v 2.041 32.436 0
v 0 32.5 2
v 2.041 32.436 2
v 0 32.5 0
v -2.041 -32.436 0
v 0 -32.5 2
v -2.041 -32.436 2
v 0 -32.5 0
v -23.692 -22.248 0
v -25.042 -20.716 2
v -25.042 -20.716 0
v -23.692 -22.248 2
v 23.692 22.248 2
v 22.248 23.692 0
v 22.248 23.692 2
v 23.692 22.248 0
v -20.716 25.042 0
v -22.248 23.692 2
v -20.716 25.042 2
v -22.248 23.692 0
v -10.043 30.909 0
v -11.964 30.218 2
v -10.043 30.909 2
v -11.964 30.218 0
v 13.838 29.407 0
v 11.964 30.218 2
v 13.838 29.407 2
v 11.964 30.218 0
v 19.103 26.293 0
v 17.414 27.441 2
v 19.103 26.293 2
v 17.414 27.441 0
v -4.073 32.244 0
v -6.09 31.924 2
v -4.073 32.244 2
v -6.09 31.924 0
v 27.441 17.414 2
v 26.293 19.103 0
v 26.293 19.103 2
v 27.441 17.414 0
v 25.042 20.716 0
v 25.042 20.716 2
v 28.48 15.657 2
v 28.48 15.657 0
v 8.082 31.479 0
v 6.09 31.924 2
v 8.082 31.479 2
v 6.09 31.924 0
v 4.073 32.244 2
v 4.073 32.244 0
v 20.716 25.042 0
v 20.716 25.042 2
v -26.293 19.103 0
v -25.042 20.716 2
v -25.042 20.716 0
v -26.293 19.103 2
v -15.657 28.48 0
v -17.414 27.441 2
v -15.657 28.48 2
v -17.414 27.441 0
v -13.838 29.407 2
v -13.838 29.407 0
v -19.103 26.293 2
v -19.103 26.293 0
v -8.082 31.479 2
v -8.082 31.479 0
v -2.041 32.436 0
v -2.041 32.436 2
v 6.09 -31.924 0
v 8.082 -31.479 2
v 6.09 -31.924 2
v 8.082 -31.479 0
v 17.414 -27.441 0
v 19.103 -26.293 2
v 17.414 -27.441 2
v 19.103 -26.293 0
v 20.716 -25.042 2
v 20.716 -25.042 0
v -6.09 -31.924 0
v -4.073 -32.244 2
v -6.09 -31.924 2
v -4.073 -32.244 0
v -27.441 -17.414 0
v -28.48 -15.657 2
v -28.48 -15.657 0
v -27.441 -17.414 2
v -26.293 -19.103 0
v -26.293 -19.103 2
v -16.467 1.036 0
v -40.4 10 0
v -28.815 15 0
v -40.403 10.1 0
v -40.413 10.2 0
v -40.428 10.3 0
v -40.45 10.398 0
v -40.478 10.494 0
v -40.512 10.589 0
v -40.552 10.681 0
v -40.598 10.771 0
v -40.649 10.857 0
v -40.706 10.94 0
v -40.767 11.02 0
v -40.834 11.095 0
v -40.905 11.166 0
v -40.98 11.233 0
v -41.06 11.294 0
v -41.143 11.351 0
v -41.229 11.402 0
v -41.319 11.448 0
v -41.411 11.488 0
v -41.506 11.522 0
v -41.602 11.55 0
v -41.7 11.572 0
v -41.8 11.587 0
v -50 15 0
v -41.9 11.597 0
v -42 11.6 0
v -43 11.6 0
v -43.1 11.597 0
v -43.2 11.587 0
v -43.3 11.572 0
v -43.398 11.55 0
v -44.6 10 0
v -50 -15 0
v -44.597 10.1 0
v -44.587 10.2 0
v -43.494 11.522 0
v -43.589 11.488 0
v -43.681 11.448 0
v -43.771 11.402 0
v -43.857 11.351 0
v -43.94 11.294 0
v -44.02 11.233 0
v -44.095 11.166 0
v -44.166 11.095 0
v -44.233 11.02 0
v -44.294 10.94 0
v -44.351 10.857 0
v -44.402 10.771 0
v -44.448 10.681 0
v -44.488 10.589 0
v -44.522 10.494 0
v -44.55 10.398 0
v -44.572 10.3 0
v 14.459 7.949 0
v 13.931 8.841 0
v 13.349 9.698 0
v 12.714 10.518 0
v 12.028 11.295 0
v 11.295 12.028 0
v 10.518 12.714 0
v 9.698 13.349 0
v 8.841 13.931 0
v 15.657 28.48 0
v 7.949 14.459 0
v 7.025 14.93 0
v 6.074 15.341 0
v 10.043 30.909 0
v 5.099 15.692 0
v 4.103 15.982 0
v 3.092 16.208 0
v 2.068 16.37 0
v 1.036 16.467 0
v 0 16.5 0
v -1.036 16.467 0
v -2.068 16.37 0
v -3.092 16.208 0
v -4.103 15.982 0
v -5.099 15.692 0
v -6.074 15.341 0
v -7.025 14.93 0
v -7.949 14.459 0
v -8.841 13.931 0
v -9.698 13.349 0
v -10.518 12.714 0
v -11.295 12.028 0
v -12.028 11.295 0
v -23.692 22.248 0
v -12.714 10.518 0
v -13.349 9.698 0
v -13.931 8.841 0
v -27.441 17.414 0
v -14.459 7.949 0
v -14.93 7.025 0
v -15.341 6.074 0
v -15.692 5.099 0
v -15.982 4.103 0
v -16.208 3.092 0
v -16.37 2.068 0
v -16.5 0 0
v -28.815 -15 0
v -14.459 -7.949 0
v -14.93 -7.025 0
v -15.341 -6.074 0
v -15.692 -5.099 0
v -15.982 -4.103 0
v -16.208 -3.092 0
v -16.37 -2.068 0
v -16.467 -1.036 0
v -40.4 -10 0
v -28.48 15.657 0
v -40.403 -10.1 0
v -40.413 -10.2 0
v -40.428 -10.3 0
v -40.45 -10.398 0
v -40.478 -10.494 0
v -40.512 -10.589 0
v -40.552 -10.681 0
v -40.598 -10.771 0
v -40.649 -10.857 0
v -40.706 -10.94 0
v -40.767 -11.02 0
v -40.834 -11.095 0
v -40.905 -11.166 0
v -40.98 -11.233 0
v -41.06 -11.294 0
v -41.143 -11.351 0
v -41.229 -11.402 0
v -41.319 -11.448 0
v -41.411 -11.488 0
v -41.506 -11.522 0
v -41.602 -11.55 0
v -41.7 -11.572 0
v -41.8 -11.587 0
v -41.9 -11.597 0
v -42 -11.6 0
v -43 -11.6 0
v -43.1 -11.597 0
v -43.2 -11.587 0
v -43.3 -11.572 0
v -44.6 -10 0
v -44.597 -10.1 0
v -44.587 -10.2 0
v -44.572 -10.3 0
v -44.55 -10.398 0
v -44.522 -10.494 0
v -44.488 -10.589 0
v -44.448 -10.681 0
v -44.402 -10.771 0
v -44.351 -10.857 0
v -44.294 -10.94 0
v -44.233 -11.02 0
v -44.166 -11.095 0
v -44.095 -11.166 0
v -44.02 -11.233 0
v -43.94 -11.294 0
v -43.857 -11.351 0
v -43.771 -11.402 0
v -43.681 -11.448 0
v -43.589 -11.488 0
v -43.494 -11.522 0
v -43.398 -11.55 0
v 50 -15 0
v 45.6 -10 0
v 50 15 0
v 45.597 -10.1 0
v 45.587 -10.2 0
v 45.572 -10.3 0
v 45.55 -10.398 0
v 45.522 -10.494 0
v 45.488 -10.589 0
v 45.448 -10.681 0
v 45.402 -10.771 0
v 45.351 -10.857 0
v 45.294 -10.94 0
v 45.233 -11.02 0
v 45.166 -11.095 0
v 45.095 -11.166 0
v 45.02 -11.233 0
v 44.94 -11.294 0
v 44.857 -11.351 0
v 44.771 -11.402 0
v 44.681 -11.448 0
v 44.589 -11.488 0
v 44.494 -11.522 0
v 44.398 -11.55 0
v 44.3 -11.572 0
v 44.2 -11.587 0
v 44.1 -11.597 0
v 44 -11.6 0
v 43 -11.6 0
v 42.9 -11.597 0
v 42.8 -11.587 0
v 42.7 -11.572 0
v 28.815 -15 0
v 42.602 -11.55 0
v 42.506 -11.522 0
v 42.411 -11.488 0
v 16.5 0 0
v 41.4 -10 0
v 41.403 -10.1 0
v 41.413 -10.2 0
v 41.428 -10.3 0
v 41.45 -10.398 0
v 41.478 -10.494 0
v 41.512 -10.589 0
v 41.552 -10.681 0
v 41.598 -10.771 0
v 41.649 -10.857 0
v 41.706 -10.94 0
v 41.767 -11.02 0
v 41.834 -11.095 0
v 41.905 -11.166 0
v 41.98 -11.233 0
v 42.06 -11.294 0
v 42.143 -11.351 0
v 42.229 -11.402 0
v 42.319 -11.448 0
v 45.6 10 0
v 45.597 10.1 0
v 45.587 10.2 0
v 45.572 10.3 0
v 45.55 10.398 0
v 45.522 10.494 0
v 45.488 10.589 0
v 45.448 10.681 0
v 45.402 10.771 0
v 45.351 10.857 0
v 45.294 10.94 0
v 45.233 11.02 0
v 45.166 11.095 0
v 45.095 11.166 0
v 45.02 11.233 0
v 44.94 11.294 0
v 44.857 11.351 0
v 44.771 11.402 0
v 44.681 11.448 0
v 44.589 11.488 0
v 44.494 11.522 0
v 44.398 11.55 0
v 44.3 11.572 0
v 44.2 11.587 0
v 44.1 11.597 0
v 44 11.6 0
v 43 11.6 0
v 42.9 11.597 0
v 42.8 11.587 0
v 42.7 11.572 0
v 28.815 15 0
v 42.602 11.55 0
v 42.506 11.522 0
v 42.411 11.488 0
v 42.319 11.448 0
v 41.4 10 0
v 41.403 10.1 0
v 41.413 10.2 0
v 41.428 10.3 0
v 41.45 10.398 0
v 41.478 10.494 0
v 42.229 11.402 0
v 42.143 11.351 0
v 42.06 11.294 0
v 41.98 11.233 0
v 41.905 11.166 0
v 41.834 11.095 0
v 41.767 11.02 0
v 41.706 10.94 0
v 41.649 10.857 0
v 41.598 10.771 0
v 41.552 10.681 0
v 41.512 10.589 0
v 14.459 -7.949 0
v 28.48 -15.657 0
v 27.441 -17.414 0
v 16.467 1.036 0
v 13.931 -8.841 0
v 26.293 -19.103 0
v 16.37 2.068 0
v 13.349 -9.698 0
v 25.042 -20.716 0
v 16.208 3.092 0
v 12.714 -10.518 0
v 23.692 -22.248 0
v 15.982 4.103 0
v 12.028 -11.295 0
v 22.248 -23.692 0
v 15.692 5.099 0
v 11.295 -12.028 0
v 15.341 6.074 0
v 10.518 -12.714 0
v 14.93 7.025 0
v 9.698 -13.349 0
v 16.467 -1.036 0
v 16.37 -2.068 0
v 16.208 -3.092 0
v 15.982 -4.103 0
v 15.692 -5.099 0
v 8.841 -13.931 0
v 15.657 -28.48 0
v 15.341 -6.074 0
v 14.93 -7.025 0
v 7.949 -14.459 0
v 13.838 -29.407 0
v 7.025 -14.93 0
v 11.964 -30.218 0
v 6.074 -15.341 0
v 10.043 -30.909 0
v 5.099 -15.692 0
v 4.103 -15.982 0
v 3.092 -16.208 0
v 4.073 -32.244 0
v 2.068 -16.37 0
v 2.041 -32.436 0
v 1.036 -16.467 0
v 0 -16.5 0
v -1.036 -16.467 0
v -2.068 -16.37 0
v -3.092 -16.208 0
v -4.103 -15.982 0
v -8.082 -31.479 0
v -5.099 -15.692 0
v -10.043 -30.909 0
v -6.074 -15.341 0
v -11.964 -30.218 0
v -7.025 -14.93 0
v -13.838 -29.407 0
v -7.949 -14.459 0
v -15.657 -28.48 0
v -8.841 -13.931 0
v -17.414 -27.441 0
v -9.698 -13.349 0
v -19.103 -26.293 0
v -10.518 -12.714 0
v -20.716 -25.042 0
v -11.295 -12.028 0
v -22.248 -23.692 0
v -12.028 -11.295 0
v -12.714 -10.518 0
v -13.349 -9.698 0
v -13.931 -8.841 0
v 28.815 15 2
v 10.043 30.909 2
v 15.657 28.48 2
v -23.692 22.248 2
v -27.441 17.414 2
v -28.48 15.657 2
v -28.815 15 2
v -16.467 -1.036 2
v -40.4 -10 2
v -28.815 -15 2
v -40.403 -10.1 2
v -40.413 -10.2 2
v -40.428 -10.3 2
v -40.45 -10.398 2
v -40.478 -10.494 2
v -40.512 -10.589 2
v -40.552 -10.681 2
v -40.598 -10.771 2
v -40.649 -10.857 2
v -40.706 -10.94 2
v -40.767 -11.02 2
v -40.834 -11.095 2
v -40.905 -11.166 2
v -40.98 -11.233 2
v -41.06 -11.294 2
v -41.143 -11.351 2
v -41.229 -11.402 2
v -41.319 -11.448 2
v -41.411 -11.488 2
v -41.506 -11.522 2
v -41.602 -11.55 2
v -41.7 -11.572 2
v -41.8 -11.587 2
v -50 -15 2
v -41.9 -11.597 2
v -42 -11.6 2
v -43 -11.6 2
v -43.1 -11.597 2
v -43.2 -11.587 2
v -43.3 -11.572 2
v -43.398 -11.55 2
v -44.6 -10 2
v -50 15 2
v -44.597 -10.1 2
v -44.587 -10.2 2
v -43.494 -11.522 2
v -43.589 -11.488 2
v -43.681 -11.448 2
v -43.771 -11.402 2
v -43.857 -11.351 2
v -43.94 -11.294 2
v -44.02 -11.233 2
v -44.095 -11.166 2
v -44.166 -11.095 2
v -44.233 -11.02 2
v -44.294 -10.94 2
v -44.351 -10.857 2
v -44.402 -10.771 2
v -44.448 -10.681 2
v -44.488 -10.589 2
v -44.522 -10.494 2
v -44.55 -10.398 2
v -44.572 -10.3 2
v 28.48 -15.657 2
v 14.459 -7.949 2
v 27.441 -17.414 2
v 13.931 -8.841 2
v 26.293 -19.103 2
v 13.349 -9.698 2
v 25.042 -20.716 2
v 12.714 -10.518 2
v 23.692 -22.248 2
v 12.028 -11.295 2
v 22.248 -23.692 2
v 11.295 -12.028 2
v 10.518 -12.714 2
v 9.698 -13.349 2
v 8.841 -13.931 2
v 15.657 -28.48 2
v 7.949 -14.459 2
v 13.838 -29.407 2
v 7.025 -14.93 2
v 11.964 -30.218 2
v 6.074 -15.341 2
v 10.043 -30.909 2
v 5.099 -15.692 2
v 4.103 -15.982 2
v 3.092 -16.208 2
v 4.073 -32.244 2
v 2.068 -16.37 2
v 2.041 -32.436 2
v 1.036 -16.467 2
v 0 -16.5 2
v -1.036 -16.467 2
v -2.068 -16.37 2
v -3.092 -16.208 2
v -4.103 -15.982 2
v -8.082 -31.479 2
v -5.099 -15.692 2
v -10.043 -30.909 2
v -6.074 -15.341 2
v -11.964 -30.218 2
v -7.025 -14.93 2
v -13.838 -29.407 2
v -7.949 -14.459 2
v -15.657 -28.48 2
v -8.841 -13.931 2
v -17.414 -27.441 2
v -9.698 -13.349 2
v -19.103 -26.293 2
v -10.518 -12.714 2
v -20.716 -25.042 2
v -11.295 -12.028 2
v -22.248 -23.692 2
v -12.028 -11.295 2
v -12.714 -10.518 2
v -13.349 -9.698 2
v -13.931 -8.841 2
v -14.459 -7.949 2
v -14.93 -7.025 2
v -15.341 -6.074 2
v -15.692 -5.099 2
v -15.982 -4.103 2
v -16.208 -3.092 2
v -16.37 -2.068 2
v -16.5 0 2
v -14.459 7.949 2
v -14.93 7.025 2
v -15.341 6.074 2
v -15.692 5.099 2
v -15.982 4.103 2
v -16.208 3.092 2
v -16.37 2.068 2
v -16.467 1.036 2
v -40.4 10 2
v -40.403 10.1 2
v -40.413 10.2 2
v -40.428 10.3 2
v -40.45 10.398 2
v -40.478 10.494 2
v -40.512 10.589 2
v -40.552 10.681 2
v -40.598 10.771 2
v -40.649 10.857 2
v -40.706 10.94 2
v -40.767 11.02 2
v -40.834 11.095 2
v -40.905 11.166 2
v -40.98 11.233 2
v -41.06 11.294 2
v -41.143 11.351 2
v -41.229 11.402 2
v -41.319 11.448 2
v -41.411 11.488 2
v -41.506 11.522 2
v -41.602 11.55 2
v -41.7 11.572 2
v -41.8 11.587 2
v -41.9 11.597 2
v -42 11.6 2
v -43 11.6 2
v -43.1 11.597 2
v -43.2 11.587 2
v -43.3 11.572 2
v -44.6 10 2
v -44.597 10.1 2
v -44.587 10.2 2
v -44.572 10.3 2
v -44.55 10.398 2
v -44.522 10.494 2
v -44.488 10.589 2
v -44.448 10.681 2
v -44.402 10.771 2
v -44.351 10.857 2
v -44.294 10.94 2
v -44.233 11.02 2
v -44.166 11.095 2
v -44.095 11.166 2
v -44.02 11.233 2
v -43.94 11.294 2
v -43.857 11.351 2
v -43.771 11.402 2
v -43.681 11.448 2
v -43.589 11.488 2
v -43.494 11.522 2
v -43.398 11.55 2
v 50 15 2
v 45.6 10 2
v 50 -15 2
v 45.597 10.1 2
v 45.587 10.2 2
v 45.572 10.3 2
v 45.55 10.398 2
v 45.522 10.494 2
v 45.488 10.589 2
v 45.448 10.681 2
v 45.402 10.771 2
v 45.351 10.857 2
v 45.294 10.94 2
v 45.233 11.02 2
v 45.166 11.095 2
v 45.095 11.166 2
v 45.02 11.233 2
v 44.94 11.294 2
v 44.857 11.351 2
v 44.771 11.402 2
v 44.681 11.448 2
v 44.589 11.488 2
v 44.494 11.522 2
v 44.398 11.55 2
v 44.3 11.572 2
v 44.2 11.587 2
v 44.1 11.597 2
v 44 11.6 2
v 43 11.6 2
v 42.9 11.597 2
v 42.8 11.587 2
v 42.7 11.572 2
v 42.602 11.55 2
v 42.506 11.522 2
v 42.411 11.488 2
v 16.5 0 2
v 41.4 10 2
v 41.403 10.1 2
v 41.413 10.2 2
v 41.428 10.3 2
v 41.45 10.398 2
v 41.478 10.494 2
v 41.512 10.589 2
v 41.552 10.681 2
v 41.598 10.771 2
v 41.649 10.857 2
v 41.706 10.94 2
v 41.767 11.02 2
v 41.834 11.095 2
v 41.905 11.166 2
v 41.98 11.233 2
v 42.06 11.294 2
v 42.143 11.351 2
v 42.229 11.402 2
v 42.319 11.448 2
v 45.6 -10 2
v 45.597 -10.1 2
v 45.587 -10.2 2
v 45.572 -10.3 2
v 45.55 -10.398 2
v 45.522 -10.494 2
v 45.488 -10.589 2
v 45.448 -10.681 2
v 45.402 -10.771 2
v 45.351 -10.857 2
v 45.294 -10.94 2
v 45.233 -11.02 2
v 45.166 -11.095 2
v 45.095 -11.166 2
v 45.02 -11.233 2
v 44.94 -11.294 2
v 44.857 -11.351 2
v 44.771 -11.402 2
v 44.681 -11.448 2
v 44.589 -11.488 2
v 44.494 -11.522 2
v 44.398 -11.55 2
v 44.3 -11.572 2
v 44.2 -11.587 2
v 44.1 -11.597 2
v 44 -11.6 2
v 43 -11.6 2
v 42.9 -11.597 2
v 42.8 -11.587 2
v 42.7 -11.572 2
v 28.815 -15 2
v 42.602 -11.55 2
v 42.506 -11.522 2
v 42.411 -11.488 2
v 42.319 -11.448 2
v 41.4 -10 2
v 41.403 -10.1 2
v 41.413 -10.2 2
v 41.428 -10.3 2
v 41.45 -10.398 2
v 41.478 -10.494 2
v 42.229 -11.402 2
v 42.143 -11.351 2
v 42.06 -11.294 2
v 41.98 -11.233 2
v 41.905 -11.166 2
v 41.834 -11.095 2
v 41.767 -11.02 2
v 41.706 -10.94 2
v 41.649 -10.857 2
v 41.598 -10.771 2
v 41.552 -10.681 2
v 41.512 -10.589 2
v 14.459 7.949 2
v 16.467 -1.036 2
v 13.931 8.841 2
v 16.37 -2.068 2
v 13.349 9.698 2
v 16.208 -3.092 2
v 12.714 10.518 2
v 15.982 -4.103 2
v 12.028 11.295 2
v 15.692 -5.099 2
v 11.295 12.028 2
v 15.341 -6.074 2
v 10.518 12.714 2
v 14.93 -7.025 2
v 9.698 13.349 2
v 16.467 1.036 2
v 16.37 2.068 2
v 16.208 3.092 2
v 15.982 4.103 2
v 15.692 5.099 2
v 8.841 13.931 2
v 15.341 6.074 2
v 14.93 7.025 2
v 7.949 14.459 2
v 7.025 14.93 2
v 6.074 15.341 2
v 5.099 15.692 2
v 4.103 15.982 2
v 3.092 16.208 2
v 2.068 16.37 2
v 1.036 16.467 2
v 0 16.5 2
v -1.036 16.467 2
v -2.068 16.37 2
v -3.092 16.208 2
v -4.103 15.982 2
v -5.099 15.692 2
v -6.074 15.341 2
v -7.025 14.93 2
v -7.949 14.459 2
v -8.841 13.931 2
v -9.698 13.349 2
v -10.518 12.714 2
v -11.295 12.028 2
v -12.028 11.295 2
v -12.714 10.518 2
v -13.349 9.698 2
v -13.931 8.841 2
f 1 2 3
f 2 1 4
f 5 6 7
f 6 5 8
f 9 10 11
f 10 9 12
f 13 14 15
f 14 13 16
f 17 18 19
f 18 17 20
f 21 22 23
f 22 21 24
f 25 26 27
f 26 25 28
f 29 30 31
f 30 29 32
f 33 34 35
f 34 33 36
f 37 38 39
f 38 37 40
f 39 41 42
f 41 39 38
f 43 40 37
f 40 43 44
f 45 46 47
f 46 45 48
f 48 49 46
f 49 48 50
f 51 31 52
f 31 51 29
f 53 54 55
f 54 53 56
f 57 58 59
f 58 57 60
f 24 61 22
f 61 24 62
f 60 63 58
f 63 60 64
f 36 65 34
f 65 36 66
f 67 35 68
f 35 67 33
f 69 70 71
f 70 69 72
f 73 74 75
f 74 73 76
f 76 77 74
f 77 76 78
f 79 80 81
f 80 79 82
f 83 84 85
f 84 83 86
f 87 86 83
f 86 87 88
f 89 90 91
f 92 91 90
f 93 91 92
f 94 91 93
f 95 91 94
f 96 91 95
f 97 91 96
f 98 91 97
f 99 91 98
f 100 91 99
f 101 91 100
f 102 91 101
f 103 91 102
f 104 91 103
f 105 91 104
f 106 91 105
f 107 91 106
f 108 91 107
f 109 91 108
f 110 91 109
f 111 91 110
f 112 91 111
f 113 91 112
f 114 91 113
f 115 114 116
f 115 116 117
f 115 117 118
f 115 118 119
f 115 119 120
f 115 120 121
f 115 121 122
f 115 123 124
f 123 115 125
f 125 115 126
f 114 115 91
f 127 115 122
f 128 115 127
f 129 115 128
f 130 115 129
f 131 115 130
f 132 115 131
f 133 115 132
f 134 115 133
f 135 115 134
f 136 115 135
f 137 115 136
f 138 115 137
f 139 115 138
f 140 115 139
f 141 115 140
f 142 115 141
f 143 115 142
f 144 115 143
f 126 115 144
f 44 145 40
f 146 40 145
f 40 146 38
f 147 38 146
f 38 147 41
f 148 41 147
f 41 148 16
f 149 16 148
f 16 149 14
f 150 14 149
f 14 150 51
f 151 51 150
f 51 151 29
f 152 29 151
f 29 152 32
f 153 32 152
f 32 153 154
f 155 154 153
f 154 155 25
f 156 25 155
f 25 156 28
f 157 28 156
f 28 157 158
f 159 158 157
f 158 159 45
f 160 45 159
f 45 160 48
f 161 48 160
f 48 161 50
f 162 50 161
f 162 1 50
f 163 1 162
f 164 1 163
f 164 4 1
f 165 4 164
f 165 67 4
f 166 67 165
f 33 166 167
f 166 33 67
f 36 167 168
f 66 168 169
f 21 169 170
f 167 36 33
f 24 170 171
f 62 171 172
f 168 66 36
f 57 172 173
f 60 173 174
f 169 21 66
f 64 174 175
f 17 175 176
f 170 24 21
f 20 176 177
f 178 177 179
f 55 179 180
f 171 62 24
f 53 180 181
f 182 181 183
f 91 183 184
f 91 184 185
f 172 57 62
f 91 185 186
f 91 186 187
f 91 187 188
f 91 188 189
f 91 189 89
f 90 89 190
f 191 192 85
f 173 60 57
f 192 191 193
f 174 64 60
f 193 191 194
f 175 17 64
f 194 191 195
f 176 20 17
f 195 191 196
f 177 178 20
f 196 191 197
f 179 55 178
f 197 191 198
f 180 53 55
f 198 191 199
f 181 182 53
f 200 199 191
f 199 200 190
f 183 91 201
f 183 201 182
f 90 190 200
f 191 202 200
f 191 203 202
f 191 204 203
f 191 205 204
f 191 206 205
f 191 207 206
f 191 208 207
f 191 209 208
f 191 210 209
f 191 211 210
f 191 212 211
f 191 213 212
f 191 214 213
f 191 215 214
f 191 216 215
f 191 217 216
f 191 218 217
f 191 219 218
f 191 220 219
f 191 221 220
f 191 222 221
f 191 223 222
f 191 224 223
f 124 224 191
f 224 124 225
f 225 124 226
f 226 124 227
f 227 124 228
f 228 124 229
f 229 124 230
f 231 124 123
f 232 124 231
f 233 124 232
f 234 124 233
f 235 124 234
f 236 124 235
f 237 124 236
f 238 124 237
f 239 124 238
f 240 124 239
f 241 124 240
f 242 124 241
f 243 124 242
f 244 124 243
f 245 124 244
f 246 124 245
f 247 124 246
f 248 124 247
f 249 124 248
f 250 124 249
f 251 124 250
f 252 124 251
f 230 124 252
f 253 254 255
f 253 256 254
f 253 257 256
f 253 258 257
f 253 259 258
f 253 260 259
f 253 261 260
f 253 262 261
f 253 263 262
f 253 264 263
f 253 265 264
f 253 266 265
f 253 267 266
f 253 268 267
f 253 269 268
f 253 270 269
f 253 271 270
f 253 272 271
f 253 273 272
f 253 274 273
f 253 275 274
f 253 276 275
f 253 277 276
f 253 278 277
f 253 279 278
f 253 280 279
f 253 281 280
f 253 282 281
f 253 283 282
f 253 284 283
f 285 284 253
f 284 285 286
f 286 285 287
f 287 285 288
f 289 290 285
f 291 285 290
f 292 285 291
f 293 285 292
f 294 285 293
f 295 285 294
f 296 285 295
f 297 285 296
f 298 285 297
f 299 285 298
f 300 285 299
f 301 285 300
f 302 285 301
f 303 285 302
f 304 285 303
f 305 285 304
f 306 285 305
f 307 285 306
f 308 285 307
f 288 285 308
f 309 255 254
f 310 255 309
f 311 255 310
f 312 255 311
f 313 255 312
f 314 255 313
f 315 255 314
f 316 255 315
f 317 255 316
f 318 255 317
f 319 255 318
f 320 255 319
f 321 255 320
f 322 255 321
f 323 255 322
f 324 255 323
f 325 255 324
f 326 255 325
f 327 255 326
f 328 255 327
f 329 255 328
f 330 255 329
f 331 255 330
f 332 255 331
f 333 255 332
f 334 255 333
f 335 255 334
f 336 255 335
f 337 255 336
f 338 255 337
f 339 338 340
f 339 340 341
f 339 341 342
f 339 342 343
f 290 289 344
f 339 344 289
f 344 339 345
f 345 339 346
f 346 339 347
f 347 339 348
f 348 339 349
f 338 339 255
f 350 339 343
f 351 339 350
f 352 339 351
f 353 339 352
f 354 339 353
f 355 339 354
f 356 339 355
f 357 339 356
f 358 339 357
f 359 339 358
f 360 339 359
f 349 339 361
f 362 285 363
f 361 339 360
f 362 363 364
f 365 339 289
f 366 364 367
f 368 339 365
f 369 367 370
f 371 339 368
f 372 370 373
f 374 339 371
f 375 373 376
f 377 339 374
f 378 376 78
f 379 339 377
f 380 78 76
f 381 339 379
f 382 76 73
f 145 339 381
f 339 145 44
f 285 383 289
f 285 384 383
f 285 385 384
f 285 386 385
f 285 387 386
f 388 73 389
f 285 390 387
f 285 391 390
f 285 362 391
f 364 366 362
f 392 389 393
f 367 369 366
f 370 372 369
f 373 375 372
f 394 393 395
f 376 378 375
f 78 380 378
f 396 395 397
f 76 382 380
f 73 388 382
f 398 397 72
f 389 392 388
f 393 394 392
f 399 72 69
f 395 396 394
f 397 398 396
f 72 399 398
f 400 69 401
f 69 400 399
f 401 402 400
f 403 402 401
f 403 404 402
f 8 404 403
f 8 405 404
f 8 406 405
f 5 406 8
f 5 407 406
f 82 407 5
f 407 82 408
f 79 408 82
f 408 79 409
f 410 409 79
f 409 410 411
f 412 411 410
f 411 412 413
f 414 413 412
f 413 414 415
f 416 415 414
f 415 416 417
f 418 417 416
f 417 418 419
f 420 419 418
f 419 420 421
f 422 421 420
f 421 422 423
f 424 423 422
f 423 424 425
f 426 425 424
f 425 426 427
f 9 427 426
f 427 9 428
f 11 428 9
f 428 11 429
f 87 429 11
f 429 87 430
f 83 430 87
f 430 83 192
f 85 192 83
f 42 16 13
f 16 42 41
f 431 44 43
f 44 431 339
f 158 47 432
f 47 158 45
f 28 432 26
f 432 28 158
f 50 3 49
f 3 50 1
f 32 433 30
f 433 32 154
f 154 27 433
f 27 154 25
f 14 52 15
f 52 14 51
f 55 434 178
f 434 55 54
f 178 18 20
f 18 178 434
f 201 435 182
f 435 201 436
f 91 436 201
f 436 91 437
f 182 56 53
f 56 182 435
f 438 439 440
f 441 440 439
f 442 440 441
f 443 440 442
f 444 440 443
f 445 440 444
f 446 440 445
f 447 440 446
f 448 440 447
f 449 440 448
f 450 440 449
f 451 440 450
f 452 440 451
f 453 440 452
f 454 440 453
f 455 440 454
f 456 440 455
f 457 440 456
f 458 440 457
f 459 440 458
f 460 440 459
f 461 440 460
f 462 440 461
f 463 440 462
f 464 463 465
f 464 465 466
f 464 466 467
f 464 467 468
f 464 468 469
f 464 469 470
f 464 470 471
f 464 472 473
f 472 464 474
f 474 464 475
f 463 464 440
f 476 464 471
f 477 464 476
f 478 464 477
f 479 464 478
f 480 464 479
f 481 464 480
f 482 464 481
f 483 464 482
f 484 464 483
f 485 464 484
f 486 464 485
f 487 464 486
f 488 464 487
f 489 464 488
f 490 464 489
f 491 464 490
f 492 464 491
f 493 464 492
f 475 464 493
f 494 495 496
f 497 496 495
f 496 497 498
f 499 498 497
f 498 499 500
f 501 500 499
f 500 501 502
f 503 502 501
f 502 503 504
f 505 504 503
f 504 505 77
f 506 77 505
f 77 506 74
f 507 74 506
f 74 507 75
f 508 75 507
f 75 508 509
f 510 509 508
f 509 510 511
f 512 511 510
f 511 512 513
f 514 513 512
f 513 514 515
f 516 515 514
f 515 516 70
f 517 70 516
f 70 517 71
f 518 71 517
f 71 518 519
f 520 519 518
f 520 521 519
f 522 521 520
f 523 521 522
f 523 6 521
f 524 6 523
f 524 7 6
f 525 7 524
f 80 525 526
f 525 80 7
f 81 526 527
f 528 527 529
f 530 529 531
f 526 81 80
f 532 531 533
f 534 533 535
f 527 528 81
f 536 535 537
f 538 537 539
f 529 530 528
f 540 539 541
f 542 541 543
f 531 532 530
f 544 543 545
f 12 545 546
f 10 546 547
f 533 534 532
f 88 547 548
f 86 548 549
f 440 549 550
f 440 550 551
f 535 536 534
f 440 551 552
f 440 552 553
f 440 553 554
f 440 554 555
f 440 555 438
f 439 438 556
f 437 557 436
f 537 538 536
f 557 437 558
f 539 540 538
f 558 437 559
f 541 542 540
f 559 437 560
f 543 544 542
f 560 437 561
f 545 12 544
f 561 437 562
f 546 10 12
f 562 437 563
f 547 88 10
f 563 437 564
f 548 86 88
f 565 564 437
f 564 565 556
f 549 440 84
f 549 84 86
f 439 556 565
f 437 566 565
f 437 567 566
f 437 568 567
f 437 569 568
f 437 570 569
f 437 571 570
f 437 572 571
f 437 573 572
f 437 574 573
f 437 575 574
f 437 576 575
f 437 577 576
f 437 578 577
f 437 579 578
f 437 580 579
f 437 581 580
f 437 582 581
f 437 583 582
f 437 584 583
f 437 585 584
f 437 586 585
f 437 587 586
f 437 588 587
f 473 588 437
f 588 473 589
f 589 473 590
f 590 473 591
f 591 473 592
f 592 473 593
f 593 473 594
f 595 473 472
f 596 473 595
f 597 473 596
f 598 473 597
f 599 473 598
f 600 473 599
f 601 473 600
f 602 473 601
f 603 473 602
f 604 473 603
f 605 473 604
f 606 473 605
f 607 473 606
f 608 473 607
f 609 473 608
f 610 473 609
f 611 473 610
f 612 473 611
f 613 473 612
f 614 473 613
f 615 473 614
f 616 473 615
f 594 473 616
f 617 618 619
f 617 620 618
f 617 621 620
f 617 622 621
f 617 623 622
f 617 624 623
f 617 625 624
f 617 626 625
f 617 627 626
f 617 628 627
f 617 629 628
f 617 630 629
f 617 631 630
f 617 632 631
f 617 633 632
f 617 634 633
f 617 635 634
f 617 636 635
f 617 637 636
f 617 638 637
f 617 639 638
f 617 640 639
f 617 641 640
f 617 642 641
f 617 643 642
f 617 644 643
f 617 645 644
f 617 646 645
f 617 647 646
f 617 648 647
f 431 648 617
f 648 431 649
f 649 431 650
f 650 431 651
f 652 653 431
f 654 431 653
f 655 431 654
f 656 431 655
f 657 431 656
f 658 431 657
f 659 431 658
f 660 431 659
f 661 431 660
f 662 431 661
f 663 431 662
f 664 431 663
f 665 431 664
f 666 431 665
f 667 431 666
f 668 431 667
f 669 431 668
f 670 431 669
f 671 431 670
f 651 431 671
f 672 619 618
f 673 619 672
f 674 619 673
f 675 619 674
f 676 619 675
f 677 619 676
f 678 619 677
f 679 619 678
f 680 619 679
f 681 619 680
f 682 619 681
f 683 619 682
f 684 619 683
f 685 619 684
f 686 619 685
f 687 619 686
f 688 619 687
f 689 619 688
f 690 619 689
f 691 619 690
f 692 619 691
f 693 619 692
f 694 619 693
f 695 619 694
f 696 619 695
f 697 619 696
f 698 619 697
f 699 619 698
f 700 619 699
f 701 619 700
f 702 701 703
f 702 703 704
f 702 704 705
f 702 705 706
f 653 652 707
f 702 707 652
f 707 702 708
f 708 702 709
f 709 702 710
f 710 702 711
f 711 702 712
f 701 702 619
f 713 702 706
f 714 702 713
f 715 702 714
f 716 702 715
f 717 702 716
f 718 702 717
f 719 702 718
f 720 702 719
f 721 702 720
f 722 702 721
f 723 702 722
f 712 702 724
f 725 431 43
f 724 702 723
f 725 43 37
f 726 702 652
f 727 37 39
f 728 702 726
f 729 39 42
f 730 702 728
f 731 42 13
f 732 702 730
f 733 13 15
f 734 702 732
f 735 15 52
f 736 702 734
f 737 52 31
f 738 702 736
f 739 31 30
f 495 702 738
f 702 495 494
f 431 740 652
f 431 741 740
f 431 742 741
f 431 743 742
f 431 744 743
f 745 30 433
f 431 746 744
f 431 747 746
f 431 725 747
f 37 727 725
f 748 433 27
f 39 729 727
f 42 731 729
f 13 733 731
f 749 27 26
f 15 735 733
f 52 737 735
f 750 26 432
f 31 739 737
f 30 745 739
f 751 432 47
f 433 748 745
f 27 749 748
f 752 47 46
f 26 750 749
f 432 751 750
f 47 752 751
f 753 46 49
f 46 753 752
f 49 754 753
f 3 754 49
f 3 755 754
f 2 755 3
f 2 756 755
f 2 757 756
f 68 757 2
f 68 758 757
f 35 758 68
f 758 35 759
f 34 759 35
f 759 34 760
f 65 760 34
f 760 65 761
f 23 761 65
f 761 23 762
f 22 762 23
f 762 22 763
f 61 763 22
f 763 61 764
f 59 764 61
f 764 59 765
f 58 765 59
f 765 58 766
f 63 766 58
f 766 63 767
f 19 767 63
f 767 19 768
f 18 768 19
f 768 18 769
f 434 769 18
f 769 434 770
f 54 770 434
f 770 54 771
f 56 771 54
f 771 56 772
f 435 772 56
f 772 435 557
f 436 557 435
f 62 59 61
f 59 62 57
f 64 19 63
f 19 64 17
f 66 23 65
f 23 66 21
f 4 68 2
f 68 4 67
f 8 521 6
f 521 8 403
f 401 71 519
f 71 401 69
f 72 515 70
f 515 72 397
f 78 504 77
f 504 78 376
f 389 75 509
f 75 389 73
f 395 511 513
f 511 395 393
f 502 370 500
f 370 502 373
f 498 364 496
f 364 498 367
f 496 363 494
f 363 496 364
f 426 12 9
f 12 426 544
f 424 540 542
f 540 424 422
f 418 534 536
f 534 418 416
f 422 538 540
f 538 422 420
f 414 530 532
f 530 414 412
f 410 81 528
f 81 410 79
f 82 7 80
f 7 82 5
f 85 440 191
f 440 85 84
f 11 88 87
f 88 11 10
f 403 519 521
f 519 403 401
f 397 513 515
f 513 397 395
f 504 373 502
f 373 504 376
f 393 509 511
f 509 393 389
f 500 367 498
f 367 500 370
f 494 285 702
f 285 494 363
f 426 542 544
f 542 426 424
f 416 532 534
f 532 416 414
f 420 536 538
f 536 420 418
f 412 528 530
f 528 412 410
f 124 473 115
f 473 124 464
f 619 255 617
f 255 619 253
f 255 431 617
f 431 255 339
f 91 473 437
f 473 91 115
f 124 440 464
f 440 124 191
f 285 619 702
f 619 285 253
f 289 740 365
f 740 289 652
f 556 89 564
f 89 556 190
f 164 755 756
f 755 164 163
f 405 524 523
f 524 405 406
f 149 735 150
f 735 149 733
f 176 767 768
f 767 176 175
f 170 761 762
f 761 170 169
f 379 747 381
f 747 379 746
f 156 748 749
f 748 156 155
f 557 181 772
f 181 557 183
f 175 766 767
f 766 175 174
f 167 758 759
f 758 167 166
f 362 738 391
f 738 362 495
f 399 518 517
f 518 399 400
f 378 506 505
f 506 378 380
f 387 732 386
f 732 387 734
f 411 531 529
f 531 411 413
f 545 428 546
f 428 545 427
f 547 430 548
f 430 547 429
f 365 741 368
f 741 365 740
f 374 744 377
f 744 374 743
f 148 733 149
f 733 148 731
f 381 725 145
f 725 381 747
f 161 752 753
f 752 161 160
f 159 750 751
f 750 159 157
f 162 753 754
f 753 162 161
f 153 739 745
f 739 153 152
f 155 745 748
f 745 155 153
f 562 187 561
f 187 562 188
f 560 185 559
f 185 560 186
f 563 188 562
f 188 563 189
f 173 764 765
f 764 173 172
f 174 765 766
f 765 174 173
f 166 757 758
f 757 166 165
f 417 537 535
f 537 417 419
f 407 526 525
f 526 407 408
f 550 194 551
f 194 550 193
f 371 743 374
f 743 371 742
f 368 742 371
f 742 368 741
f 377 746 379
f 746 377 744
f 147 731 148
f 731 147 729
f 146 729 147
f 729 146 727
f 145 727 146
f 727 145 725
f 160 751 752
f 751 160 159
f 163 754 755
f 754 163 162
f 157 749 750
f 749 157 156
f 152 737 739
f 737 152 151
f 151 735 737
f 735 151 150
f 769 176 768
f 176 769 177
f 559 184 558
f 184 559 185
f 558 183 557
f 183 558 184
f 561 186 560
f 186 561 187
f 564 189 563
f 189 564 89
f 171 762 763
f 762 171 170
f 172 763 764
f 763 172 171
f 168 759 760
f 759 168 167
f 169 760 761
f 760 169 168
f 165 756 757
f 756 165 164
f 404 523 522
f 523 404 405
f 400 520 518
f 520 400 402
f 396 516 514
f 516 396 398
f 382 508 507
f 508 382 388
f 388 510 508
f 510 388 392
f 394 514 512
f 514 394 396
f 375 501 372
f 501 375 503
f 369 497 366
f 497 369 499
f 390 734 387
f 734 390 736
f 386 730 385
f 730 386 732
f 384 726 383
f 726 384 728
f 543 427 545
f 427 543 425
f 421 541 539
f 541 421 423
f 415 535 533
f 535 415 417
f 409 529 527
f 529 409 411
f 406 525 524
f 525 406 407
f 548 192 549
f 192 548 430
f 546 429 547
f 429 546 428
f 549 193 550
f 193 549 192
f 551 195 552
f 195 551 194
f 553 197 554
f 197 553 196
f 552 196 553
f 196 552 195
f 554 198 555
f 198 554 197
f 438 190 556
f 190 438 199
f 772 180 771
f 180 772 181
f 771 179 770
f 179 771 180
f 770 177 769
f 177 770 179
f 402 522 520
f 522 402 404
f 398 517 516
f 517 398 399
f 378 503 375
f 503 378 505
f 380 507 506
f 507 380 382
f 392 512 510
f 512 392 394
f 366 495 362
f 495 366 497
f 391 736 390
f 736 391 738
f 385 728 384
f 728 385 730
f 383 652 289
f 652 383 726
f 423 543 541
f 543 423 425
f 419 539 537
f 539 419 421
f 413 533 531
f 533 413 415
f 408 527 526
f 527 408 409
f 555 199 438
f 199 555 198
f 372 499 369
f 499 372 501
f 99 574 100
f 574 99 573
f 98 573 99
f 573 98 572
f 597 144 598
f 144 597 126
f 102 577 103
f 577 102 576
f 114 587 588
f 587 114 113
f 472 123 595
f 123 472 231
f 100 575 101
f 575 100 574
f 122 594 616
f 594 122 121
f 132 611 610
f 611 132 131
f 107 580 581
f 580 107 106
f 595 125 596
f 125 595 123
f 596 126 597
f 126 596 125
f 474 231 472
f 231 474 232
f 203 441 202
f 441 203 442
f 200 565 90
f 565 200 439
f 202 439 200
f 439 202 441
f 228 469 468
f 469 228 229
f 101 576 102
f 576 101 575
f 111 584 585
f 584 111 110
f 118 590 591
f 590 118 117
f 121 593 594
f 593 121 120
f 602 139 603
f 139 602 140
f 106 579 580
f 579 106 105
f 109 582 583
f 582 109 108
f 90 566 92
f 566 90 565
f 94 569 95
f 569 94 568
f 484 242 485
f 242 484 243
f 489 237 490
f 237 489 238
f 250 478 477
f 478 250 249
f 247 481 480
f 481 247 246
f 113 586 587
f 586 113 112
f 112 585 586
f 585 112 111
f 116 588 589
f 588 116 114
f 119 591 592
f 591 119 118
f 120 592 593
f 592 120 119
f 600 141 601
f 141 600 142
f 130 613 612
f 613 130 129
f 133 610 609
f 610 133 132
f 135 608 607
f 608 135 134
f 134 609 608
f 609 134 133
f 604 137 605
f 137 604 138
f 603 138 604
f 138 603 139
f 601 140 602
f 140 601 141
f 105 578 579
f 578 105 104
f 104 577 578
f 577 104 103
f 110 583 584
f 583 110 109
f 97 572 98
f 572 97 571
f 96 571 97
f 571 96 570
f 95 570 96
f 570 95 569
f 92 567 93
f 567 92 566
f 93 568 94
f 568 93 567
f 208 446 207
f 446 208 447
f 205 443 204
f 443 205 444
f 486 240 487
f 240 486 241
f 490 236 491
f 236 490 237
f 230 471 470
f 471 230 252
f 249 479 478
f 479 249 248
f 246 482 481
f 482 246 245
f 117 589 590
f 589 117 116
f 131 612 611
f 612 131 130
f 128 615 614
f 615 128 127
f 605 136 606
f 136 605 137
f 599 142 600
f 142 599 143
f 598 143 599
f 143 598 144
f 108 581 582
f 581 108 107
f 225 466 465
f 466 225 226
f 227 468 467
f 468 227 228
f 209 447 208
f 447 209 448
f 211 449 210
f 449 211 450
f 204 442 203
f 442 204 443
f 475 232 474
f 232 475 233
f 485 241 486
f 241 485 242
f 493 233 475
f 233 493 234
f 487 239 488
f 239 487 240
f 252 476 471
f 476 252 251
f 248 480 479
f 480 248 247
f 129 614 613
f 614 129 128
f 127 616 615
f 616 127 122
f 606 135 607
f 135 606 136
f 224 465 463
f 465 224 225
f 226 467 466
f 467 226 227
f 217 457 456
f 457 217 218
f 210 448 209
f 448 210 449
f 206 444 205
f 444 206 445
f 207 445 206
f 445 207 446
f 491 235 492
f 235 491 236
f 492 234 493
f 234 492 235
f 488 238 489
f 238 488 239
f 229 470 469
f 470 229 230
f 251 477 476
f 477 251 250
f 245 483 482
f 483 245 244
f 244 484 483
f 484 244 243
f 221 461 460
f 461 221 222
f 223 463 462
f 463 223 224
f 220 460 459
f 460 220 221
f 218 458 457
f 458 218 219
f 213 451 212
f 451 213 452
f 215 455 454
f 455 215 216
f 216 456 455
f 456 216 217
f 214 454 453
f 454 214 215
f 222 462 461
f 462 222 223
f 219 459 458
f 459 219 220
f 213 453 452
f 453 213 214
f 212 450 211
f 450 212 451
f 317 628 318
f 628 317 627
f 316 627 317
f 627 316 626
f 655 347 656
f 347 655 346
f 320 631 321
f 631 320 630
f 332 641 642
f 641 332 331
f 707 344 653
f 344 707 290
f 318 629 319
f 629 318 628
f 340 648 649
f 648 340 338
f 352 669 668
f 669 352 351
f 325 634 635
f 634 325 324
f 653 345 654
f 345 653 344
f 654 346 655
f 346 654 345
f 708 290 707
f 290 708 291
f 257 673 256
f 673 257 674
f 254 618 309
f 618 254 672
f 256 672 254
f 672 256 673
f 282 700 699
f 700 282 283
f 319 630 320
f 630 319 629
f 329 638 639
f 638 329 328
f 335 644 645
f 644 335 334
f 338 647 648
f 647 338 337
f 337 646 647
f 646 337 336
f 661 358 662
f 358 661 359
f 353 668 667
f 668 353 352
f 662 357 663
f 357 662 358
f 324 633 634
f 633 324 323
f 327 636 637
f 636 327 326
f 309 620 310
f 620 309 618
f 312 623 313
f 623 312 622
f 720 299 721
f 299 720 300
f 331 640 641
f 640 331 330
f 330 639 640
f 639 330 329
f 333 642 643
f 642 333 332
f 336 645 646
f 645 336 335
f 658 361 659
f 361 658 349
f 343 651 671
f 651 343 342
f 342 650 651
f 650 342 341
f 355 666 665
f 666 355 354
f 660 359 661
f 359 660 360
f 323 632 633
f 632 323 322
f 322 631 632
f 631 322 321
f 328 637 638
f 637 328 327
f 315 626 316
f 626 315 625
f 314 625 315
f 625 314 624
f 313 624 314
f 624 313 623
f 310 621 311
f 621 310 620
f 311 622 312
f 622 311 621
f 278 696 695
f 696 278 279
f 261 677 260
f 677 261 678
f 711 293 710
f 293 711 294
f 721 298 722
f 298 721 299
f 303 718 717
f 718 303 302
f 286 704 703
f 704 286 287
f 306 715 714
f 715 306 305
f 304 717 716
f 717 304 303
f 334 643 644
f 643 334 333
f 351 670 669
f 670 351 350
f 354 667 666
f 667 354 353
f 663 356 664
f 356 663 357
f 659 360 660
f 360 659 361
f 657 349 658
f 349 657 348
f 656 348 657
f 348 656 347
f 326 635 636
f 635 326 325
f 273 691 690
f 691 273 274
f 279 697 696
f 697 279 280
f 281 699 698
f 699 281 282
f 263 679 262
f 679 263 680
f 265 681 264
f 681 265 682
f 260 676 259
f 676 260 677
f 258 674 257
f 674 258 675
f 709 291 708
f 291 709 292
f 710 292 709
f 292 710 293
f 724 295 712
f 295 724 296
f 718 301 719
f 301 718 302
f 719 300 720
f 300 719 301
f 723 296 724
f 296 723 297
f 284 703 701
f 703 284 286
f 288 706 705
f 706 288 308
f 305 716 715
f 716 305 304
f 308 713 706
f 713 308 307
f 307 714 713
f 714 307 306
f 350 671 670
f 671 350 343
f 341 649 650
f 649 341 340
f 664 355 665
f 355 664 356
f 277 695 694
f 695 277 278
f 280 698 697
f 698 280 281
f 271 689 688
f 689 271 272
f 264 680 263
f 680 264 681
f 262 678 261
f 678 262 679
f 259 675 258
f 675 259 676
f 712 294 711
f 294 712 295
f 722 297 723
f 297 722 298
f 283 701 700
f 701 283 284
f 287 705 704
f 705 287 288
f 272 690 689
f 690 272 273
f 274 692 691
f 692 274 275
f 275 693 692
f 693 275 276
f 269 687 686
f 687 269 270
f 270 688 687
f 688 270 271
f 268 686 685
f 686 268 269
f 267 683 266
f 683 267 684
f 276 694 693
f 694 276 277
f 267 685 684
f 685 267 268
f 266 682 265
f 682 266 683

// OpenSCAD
$fn=100;

difference() {
	union() {
		cylinder(2, 65/2, 65/2);
		
		translate([-50, -15, 0])
		cube([100, 30, 2]);
	}
	
	translate([0, 0, -0.1])
		cylinder(3, 33/2, 33/2);
	
	translate([-86/2, -10, -0.1])
		minkowski() {
			cube([1, 20, 1]);
			cylinder(3, 1.6, 1.6);
		}
	
	translate([86/2, -10, -0.1])
		minkowski() {
			cube([1, 20, 1]);
			cylinder(3, 1.6, 1.6);
		}
}
